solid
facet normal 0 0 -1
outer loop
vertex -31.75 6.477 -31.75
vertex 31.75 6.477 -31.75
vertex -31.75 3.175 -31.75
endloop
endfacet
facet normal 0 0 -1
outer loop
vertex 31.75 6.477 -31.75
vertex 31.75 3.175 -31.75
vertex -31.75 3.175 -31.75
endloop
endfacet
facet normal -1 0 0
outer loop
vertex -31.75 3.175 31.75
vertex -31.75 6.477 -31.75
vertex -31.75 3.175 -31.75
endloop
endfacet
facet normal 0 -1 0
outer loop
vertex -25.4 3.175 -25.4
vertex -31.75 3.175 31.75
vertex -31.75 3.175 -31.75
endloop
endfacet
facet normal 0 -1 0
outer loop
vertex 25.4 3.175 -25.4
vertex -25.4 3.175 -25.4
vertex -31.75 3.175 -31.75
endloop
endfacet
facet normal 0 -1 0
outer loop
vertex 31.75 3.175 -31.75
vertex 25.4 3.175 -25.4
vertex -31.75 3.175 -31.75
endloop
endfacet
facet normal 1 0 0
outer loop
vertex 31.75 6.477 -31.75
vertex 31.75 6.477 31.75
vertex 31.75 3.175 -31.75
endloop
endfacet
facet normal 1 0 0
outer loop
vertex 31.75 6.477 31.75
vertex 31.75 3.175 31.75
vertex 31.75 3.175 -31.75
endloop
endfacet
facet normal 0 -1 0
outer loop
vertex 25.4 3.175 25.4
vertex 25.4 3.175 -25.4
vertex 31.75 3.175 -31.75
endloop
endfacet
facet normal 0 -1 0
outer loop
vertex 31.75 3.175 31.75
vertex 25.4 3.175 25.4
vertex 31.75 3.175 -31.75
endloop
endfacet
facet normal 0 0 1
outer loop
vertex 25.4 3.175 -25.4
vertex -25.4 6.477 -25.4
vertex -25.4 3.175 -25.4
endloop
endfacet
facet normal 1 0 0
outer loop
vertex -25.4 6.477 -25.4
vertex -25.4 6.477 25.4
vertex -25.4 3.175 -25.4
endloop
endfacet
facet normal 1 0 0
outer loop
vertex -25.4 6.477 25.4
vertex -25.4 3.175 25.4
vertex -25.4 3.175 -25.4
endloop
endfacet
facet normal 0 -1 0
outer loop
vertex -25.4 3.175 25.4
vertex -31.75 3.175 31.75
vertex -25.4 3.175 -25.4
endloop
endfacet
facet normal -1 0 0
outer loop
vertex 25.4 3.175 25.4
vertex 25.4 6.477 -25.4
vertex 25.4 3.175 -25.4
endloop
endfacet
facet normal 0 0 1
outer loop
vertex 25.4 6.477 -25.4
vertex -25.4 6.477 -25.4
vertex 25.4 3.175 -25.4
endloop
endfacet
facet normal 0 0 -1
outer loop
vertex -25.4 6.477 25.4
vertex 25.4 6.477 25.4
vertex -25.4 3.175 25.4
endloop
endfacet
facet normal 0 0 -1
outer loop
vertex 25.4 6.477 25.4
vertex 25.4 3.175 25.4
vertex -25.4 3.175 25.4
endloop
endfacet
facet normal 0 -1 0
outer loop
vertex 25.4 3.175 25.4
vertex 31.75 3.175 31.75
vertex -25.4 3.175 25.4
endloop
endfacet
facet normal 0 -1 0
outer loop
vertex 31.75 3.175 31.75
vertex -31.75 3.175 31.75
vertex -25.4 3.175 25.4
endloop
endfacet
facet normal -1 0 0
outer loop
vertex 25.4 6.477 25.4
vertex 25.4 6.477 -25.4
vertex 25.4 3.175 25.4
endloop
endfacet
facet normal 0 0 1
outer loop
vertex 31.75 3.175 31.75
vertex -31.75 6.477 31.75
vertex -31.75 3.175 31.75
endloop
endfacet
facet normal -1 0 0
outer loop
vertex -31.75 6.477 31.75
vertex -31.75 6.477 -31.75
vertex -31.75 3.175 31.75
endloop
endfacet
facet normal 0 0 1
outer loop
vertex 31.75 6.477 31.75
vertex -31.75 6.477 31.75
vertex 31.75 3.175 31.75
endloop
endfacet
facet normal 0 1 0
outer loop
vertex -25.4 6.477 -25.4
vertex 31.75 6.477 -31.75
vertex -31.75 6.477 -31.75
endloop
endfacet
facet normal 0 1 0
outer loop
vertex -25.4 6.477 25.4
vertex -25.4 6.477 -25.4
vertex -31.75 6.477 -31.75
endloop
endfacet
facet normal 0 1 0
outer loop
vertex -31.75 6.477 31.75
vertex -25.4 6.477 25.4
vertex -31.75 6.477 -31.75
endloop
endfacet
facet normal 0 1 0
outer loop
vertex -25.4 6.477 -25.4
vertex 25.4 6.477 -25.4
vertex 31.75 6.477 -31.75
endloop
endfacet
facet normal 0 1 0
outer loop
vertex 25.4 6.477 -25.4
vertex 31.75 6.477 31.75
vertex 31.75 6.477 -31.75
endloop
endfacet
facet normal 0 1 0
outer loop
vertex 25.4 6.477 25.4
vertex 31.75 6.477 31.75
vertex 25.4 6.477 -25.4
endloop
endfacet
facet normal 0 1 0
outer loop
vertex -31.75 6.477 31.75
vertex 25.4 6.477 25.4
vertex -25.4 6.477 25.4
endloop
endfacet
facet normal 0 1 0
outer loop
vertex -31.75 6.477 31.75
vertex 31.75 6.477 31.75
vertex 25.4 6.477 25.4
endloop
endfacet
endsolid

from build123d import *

# Parameters (mm, degrees)
SKETCH1_W           = 88.9
SKETCH1_H           = 88.9
SKETCH1_R           = 2.032
SKETCH1_W_2         = 63.5
SKETCH1_H_2         = 63.5
SKETCH1_W_3         = 50.8
SKETCH1_H_3         = 50.8
BOSS_EXTRUDE2_DEPTH = 3.175
BOSS_EXTRUDE3_START = 3.175
SKETCH1_4_W         = 63.5
SKETCH1_4_H         = 63.5
SKETCH1_4_W_2       = 50.8
SKETCH1_4_H_2       = 50.8
BOSS_EXTRUDE3_DEPTH = 3.302
SKETCH2_W           = 88.9
SKETCH2_H           = 88.9
CUT_EXTRUDE1_DEPTH  = 4.175


with BuildPart() as part:
    # Sketch1 → Boss-Extrude2 (new body)
    with BuildSketch(Plane(origin=(0, 0, 0), x_dir=(1, 0, 0), z_dir=(0, 1, 0))):
        Rectangle(SKETCH1_W, SKETCH1_H)
        with Locations((38.1, 38.1)):
            Circle(SKETCH1_R, mode=Mode.SUBTRACT)
        with Locations((-38.1, 38.1)):
            Circle(SKETCH1_R, mode=Mode.SUBTRACT)
        with Locations((38.1, -38.1)):
            Circle(SKETCH1_R, mode=Mode.SUBTRACT)
        with Locations((-38.1, -38.1)):
            Circle(SKETCH1_R, mode=Mode.SUBTRACT)
        Rectangle(SKETCH1_W_2, SKETCH1_H_2, mode=Mode.SUBTRACT)
        Rectangle(SKETCH1_W_3, SKETCH1_H_3)
        Rectangle(SKETCH1_W_2, SKETCH1_H_2)
        Rectangle(SKETCH1_W_3, SKETCH1_H_3, mode=Mode.SUBTRACT)
    extrude(amount=BOSS_EXTRUDE2_DEPTH)

    # Sketch1<4> → Boss-Extrude3 (add)
    with BuildSketch(Plane(origin=(0, 0, 0), x_dir=(1, 0, 0), z_dir=(0, 1, 0)).offset(BOSS_EXTRUDE3_START)):
        Rectangle(SKETCH1_4_W, SKETCH1_4_H)
        Rectangle(SKETCH1_4_W_2, SKETCH1_4_H_2, mode=Mode.SUBTRACT)
    extrude(amount=BOSS_EXTRUDE3_DEPTH)

    # Sketch2 → Cut-Extrude1 (cut, through all)
    with BuildSketch(Plane(origin=(0, 3.175, 0), x_dir=(1, 0, 0), z_dir=(0, 1, 0))):
        Rectangle(SKETCH2_W, SKETCH2_H)
    extrude(amount=-CUT_EXTRUDE1_DEPTH, mode=Mode.SUBTRACT)


solid = part.part
